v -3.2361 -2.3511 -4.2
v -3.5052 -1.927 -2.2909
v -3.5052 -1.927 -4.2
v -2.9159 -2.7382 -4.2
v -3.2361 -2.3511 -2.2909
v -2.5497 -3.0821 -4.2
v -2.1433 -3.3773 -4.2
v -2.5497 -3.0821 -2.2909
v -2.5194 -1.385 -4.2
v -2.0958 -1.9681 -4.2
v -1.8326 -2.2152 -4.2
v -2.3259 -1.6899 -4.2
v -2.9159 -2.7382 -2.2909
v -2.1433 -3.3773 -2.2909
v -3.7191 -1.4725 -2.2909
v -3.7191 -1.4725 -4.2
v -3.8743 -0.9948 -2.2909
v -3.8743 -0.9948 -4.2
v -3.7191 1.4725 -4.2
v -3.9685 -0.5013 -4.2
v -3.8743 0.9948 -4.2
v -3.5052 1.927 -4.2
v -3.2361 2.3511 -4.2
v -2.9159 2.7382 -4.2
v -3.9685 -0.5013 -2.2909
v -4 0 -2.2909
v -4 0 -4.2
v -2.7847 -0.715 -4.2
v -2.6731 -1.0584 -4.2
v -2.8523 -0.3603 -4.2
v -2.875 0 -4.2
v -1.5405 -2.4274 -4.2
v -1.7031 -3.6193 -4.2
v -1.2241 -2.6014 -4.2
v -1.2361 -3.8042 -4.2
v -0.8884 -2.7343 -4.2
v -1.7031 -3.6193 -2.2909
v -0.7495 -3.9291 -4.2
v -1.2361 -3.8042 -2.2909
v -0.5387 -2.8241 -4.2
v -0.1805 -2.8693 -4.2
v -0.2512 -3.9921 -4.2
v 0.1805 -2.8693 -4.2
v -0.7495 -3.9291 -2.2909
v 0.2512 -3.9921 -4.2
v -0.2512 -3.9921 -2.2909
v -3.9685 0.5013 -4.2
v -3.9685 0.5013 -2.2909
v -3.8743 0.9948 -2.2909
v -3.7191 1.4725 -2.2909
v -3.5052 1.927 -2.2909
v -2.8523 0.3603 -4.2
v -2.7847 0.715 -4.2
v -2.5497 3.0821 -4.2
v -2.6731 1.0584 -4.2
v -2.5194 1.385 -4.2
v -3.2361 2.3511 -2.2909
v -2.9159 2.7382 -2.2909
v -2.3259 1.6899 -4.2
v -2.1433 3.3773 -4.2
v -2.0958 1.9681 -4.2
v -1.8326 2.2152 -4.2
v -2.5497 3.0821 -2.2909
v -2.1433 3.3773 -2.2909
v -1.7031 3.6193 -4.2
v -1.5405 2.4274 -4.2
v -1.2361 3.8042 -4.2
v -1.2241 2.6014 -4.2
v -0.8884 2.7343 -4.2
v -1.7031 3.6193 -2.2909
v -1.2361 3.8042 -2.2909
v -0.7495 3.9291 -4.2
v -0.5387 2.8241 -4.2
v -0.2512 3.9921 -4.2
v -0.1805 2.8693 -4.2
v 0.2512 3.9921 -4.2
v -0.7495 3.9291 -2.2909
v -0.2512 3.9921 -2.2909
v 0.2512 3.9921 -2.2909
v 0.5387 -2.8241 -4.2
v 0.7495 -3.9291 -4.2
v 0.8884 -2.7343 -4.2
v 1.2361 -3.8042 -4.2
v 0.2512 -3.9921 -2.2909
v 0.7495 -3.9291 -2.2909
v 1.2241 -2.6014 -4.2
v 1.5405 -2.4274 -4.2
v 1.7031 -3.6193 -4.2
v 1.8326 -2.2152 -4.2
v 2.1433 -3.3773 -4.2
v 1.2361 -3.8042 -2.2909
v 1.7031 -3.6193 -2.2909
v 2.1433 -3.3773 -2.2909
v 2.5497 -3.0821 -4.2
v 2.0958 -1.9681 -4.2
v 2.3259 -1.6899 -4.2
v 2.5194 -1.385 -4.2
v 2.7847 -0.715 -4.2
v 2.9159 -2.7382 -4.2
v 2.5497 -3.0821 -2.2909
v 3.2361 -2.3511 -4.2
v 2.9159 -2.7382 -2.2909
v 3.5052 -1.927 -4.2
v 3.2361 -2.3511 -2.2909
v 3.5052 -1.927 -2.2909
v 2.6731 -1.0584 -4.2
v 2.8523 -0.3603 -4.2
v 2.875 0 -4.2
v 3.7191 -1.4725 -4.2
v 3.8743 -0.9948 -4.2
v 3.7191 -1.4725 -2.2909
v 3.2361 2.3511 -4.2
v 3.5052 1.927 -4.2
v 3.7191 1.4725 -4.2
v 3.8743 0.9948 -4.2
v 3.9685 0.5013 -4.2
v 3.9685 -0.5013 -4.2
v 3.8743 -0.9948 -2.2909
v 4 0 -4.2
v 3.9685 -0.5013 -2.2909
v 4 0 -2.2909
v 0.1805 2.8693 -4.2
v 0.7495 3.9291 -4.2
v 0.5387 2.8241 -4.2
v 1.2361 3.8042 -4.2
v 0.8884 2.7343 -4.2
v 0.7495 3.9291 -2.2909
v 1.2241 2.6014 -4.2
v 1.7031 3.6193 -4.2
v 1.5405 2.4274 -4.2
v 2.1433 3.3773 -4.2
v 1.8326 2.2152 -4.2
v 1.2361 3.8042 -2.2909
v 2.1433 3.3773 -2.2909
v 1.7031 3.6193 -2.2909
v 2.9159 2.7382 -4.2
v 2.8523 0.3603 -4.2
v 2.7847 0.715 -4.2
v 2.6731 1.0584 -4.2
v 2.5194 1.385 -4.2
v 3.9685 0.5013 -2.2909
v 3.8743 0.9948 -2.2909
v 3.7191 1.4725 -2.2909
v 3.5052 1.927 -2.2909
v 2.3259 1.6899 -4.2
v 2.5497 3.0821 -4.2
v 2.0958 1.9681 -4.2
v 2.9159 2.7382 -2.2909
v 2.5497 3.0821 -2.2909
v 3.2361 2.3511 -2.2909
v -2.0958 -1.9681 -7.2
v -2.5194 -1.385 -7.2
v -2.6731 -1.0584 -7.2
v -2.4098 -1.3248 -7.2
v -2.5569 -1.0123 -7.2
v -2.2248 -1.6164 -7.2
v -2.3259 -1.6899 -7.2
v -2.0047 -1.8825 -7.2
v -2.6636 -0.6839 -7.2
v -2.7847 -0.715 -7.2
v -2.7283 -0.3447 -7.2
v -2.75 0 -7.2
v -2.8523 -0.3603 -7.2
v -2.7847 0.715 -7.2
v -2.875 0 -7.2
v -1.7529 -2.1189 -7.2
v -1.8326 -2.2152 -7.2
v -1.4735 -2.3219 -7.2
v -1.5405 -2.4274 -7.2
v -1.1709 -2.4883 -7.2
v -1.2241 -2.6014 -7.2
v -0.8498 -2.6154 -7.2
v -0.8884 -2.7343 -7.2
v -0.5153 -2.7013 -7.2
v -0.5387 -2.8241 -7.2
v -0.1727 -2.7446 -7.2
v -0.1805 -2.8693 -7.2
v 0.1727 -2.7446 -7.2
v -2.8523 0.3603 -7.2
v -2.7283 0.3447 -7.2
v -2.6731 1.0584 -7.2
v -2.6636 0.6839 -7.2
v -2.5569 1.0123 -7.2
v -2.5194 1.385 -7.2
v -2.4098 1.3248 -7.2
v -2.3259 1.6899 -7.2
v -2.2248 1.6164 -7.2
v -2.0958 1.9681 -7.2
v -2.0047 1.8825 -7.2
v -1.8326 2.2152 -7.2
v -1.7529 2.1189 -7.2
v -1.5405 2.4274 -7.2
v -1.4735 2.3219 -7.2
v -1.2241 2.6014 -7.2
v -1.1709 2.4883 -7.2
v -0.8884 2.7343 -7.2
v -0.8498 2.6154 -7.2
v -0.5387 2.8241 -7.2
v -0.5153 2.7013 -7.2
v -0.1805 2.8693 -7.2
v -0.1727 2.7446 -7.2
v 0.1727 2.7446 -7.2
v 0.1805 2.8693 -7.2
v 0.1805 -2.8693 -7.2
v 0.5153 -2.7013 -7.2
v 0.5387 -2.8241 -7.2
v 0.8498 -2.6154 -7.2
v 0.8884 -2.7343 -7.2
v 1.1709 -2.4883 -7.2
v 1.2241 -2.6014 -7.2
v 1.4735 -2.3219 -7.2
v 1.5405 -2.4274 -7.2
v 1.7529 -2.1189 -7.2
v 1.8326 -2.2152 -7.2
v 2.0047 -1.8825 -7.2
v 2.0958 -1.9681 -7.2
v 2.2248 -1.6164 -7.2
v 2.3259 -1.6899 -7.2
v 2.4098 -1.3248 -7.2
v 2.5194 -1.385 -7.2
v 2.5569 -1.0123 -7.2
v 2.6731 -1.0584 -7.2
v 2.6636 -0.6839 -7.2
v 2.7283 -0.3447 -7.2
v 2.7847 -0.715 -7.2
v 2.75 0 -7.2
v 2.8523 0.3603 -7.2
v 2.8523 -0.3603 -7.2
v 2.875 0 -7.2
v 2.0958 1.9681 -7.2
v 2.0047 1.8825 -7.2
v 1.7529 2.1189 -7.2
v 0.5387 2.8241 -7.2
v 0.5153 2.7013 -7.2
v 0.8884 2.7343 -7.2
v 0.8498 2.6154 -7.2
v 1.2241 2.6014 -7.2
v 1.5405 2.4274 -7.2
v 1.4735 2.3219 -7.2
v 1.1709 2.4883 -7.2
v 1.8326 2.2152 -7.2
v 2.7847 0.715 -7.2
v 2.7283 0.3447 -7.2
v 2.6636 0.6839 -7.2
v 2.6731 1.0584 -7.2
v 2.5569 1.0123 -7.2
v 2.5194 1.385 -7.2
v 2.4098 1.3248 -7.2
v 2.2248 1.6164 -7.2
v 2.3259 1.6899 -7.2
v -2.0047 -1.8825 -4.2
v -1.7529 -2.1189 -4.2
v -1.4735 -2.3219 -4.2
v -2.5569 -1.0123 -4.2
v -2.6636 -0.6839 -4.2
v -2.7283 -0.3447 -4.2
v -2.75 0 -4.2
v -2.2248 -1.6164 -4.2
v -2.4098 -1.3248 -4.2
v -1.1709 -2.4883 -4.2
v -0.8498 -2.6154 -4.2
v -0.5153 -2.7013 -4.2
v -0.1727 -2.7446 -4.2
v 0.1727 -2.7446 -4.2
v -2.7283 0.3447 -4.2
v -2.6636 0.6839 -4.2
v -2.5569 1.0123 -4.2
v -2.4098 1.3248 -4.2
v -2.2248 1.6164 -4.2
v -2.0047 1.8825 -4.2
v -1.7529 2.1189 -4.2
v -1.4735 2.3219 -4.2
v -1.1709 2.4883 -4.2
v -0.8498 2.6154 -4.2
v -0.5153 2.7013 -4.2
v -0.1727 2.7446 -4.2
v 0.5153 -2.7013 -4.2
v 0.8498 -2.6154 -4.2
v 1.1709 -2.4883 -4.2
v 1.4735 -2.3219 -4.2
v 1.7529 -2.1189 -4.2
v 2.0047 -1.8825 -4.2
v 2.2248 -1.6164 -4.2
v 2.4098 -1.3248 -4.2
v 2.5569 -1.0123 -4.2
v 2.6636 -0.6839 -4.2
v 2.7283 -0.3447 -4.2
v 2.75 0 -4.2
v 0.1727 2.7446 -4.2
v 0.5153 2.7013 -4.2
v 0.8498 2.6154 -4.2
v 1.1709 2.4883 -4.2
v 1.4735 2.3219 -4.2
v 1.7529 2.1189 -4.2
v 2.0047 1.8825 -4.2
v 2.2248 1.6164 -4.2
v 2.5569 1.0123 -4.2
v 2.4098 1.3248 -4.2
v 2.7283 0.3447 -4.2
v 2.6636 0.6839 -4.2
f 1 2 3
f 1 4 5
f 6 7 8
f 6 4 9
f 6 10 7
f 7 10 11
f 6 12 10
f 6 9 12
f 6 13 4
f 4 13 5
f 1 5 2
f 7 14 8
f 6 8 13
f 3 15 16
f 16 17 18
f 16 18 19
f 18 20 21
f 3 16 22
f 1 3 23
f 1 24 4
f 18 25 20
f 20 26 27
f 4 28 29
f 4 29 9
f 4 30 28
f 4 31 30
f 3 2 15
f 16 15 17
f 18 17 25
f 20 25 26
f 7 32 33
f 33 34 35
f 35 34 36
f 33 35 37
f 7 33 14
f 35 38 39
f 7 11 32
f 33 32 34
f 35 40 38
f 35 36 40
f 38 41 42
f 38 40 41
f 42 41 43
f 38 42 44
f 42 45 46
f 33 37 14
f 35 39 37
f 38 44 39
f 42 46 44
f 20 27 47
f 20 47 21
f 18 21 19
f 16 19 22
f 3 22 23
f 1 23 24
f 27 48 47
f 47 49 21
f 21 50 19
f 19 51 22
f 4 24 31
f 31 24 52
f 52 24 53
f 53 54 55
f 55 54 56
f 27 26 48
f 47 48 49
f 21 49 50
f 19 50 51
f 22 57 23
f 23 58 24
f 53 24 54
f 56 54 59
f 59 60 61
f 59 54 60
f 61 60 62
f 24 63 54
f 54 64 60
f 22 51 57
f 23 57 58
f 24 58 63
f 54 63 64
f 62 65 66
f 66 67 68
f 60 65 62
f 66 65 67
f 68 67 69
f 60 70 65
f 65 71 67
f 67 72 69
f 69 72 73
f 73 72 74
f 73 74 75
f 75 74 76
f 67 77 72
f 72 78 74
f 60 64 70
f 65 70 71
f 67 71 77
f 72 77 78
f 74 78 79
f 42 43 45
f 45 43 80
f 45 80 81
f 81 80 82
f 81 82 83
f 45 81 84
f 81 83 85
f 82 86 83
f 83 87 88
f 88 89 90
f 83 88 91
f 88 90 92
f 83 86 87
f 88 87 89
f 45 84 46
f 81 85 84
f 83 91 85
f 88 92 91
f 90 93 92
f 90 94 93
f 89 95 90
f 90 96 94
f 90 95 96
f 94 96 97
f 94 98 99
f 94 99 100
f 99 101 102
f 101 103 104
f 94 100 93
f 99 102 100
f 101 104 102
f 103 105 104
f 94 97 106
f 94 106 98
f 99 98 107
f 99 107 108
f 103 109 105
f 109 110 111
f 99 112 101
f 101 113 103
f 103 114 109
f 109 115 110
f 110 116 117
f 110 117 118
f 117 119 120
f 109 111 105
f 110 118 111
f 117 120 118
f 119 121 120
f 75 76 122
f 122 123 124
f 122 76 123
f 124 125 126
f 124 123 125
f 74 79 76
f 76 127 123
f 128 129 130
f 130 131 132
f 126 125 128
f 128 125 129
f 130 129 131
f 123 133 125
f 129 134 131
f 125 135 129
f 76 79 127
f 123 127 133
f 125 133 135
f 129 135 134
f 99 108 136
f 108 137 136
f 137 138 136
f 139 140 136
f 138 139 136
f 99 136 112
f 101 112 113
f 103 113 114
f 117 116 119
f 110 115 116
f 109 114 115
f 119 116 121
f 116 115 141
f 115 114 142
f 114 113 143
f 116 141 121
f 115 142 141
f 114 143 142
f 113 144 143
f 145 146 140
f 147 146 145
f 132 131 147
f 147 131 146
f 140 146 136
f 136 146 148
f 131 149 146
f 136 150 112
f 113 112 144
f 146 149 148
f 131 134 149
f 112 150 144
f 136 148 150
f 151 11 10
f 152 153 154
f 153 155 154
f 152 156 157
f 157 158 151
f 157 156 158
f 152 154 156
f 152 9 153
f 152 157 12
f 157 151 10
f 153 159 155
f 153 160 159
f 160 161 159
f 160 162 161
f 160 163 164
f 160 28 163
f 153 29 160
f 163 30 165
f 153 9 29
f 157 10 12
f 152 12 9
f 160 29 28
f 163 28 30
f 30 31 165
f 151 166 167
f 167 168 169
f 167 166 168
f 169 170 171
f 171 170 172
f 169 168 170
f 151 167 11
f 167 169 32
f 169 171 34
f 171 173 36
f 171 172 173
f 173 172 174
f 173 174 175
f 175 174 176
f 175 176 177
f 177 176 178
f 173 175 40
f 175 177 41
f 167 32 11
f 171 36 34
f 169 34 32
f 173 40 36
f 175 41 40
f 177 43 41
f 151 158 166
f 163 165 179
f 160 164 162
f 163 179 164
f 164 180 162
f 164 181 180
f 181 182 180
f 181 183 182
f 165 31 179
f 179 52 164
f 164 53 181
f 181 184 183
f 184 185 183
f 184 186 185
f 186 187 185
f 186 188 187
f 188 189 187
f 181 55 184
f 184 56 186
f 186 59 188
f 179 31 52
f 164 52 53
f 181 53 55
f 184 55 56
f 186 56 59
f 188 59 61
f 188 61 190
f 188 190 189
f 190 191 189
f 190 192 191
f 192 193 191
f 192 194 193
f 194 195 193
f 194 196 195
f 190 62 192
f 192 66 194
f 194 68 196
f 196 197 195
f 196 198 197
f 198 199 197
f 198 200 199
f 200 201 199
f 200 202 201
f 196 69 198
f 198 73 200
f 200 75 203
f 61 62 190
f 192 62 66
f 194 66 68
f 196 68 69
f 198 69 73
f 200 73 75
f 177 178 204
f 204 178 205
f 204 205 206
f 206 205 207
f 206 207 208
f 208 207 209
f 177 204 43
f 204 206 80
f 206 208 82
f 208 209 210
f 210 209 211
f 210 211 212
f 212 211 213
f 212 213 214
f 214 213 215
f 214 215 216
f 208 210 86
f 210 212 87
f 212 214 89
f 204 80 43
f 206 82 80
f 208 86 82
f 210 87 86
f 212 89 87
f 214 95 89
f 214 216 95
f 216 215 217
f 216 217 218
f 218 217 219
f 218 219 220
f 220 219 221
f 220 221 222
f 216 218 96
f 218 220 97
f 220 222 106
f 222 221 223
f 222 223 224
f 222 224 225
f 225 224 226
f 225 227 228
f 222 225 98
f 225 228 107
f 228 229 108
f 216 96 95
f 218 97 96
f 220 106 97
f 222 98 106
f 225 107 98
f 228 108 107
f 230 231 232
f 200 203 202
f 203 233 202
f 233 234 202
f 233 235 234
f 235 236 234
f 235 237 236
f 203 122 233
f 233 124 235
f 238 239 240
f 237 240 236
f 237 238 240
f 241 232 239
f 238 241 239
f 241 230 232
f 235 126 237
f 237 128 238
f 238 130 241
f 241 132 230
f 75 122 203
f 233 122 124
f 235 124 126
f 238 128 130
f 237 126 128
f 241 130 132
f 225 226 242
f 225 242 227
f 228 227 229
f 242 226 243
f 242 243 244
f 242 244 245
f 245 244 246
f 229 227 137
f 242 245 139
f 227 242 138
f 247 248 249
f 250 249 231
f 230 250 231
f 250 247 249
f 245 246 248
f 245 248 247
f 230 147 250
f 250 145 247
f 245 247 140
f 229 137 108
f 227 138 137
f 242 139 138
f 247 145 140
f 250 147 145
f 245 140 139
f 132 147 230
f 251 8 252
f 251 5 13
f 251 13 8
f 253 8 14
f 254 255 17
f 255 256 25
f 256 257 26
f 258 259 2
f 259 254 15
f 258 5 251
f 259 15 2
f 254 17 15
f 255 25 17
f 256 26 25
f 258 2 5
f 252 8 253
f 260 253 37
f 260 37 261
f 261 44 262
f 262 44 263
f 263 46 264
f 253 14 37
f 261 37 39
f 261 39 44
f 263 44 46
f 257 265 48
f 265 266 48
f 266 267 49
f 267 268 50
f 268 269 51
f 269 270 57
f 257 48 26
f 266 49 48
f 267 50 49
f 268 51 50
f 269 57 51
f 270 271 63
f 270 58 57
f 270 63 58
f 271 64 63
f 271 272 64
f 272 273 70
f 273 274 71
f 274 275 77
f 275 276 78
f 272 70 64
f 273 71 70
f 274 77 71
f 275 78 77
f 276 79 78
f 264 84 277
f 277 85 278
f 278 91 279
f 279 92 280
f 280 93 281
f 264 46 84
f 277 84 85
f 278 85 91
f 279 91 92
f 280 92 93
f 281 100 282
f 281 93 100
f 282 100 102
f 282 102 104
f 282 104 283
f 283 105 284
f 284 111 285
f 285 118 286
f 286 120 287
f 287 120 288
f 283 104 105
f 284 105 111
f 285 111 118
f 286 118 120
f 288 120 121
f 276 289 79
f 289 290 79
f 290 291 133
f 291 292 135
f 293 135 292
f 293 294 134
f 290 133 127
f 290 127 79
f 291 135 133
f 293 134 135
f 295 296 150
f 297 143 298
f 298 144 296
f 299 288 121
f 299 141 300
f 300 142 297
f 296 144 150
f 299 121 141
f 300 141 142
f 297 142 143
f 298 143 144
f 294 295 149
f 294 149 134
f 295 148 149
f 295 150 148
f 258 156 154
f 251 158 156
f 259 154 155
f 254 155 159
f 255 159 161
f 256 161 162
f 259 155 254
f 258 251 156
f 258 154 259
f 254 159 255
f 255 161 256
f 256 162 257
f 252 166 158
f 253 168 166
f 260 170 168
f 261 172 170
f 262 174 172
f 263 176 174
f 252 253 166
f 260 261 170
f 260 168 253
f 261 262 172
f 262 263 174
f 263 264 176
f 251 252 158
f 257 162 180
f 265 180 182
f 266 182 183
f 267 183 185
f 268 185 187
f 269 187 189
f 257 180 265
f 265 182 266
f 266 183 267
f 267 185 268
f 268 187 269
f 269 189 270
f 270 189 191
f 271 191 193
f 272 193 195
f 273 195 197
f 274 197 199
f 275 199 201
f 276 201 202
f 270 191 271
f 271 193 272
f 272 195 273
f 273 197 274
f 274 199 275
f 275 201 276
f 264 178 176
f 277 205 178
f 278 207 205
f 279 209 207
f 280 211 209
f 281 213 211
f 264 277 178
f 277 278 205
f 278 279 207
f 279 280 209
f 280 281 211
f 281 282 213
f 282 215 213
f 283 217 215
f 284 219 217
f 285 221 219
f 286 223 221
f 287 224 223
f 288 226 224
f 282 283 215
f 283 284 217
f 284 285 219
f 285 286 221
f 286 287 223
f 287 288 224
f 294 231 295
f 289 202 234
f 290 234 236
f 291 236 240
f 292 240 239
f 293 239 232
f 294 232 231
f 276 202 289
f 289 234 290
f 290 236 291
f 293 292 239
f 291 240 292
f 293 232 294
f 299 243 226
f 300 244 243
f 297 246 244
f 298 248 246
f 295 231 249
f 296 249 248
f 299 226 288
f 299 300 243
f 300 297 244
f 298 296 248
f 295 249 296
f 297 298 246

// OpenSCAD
$fn = 50;

difference() {
	union() {
		translate(v = [0, 0, -4.2]) {
			cylinder(h = 4.2, r = 4.0);
		}
		#translate(v = [0, 0, -7.2]) {
			cylinder(h = 7.2, r = 2.875);
		}
	}
	union() {
		translate(v = [0, 0, 0]) {
			rotate(a = [0, 0, 0]) {
				difference() {
					union() {
						translate(v = [0, 0, -7.2]) {
							cylinder(h = 7.2, r = 2.25);
						}
						translate(v = [0, 0, -4.2]) {
							cylinder(h = 4.2, r1 = 2.75, r2 = 5.5);
						}
						translate(v = [0, 0, -7.2]) {
							cylinder(h = 7.2, r = 2.75);
						}
						translate(v = [0, 0, -7.2]) {
							cylinder(h = 7.2, r = 2.25);
						}
					}
					union();
				}
			}
		}
	}
}
